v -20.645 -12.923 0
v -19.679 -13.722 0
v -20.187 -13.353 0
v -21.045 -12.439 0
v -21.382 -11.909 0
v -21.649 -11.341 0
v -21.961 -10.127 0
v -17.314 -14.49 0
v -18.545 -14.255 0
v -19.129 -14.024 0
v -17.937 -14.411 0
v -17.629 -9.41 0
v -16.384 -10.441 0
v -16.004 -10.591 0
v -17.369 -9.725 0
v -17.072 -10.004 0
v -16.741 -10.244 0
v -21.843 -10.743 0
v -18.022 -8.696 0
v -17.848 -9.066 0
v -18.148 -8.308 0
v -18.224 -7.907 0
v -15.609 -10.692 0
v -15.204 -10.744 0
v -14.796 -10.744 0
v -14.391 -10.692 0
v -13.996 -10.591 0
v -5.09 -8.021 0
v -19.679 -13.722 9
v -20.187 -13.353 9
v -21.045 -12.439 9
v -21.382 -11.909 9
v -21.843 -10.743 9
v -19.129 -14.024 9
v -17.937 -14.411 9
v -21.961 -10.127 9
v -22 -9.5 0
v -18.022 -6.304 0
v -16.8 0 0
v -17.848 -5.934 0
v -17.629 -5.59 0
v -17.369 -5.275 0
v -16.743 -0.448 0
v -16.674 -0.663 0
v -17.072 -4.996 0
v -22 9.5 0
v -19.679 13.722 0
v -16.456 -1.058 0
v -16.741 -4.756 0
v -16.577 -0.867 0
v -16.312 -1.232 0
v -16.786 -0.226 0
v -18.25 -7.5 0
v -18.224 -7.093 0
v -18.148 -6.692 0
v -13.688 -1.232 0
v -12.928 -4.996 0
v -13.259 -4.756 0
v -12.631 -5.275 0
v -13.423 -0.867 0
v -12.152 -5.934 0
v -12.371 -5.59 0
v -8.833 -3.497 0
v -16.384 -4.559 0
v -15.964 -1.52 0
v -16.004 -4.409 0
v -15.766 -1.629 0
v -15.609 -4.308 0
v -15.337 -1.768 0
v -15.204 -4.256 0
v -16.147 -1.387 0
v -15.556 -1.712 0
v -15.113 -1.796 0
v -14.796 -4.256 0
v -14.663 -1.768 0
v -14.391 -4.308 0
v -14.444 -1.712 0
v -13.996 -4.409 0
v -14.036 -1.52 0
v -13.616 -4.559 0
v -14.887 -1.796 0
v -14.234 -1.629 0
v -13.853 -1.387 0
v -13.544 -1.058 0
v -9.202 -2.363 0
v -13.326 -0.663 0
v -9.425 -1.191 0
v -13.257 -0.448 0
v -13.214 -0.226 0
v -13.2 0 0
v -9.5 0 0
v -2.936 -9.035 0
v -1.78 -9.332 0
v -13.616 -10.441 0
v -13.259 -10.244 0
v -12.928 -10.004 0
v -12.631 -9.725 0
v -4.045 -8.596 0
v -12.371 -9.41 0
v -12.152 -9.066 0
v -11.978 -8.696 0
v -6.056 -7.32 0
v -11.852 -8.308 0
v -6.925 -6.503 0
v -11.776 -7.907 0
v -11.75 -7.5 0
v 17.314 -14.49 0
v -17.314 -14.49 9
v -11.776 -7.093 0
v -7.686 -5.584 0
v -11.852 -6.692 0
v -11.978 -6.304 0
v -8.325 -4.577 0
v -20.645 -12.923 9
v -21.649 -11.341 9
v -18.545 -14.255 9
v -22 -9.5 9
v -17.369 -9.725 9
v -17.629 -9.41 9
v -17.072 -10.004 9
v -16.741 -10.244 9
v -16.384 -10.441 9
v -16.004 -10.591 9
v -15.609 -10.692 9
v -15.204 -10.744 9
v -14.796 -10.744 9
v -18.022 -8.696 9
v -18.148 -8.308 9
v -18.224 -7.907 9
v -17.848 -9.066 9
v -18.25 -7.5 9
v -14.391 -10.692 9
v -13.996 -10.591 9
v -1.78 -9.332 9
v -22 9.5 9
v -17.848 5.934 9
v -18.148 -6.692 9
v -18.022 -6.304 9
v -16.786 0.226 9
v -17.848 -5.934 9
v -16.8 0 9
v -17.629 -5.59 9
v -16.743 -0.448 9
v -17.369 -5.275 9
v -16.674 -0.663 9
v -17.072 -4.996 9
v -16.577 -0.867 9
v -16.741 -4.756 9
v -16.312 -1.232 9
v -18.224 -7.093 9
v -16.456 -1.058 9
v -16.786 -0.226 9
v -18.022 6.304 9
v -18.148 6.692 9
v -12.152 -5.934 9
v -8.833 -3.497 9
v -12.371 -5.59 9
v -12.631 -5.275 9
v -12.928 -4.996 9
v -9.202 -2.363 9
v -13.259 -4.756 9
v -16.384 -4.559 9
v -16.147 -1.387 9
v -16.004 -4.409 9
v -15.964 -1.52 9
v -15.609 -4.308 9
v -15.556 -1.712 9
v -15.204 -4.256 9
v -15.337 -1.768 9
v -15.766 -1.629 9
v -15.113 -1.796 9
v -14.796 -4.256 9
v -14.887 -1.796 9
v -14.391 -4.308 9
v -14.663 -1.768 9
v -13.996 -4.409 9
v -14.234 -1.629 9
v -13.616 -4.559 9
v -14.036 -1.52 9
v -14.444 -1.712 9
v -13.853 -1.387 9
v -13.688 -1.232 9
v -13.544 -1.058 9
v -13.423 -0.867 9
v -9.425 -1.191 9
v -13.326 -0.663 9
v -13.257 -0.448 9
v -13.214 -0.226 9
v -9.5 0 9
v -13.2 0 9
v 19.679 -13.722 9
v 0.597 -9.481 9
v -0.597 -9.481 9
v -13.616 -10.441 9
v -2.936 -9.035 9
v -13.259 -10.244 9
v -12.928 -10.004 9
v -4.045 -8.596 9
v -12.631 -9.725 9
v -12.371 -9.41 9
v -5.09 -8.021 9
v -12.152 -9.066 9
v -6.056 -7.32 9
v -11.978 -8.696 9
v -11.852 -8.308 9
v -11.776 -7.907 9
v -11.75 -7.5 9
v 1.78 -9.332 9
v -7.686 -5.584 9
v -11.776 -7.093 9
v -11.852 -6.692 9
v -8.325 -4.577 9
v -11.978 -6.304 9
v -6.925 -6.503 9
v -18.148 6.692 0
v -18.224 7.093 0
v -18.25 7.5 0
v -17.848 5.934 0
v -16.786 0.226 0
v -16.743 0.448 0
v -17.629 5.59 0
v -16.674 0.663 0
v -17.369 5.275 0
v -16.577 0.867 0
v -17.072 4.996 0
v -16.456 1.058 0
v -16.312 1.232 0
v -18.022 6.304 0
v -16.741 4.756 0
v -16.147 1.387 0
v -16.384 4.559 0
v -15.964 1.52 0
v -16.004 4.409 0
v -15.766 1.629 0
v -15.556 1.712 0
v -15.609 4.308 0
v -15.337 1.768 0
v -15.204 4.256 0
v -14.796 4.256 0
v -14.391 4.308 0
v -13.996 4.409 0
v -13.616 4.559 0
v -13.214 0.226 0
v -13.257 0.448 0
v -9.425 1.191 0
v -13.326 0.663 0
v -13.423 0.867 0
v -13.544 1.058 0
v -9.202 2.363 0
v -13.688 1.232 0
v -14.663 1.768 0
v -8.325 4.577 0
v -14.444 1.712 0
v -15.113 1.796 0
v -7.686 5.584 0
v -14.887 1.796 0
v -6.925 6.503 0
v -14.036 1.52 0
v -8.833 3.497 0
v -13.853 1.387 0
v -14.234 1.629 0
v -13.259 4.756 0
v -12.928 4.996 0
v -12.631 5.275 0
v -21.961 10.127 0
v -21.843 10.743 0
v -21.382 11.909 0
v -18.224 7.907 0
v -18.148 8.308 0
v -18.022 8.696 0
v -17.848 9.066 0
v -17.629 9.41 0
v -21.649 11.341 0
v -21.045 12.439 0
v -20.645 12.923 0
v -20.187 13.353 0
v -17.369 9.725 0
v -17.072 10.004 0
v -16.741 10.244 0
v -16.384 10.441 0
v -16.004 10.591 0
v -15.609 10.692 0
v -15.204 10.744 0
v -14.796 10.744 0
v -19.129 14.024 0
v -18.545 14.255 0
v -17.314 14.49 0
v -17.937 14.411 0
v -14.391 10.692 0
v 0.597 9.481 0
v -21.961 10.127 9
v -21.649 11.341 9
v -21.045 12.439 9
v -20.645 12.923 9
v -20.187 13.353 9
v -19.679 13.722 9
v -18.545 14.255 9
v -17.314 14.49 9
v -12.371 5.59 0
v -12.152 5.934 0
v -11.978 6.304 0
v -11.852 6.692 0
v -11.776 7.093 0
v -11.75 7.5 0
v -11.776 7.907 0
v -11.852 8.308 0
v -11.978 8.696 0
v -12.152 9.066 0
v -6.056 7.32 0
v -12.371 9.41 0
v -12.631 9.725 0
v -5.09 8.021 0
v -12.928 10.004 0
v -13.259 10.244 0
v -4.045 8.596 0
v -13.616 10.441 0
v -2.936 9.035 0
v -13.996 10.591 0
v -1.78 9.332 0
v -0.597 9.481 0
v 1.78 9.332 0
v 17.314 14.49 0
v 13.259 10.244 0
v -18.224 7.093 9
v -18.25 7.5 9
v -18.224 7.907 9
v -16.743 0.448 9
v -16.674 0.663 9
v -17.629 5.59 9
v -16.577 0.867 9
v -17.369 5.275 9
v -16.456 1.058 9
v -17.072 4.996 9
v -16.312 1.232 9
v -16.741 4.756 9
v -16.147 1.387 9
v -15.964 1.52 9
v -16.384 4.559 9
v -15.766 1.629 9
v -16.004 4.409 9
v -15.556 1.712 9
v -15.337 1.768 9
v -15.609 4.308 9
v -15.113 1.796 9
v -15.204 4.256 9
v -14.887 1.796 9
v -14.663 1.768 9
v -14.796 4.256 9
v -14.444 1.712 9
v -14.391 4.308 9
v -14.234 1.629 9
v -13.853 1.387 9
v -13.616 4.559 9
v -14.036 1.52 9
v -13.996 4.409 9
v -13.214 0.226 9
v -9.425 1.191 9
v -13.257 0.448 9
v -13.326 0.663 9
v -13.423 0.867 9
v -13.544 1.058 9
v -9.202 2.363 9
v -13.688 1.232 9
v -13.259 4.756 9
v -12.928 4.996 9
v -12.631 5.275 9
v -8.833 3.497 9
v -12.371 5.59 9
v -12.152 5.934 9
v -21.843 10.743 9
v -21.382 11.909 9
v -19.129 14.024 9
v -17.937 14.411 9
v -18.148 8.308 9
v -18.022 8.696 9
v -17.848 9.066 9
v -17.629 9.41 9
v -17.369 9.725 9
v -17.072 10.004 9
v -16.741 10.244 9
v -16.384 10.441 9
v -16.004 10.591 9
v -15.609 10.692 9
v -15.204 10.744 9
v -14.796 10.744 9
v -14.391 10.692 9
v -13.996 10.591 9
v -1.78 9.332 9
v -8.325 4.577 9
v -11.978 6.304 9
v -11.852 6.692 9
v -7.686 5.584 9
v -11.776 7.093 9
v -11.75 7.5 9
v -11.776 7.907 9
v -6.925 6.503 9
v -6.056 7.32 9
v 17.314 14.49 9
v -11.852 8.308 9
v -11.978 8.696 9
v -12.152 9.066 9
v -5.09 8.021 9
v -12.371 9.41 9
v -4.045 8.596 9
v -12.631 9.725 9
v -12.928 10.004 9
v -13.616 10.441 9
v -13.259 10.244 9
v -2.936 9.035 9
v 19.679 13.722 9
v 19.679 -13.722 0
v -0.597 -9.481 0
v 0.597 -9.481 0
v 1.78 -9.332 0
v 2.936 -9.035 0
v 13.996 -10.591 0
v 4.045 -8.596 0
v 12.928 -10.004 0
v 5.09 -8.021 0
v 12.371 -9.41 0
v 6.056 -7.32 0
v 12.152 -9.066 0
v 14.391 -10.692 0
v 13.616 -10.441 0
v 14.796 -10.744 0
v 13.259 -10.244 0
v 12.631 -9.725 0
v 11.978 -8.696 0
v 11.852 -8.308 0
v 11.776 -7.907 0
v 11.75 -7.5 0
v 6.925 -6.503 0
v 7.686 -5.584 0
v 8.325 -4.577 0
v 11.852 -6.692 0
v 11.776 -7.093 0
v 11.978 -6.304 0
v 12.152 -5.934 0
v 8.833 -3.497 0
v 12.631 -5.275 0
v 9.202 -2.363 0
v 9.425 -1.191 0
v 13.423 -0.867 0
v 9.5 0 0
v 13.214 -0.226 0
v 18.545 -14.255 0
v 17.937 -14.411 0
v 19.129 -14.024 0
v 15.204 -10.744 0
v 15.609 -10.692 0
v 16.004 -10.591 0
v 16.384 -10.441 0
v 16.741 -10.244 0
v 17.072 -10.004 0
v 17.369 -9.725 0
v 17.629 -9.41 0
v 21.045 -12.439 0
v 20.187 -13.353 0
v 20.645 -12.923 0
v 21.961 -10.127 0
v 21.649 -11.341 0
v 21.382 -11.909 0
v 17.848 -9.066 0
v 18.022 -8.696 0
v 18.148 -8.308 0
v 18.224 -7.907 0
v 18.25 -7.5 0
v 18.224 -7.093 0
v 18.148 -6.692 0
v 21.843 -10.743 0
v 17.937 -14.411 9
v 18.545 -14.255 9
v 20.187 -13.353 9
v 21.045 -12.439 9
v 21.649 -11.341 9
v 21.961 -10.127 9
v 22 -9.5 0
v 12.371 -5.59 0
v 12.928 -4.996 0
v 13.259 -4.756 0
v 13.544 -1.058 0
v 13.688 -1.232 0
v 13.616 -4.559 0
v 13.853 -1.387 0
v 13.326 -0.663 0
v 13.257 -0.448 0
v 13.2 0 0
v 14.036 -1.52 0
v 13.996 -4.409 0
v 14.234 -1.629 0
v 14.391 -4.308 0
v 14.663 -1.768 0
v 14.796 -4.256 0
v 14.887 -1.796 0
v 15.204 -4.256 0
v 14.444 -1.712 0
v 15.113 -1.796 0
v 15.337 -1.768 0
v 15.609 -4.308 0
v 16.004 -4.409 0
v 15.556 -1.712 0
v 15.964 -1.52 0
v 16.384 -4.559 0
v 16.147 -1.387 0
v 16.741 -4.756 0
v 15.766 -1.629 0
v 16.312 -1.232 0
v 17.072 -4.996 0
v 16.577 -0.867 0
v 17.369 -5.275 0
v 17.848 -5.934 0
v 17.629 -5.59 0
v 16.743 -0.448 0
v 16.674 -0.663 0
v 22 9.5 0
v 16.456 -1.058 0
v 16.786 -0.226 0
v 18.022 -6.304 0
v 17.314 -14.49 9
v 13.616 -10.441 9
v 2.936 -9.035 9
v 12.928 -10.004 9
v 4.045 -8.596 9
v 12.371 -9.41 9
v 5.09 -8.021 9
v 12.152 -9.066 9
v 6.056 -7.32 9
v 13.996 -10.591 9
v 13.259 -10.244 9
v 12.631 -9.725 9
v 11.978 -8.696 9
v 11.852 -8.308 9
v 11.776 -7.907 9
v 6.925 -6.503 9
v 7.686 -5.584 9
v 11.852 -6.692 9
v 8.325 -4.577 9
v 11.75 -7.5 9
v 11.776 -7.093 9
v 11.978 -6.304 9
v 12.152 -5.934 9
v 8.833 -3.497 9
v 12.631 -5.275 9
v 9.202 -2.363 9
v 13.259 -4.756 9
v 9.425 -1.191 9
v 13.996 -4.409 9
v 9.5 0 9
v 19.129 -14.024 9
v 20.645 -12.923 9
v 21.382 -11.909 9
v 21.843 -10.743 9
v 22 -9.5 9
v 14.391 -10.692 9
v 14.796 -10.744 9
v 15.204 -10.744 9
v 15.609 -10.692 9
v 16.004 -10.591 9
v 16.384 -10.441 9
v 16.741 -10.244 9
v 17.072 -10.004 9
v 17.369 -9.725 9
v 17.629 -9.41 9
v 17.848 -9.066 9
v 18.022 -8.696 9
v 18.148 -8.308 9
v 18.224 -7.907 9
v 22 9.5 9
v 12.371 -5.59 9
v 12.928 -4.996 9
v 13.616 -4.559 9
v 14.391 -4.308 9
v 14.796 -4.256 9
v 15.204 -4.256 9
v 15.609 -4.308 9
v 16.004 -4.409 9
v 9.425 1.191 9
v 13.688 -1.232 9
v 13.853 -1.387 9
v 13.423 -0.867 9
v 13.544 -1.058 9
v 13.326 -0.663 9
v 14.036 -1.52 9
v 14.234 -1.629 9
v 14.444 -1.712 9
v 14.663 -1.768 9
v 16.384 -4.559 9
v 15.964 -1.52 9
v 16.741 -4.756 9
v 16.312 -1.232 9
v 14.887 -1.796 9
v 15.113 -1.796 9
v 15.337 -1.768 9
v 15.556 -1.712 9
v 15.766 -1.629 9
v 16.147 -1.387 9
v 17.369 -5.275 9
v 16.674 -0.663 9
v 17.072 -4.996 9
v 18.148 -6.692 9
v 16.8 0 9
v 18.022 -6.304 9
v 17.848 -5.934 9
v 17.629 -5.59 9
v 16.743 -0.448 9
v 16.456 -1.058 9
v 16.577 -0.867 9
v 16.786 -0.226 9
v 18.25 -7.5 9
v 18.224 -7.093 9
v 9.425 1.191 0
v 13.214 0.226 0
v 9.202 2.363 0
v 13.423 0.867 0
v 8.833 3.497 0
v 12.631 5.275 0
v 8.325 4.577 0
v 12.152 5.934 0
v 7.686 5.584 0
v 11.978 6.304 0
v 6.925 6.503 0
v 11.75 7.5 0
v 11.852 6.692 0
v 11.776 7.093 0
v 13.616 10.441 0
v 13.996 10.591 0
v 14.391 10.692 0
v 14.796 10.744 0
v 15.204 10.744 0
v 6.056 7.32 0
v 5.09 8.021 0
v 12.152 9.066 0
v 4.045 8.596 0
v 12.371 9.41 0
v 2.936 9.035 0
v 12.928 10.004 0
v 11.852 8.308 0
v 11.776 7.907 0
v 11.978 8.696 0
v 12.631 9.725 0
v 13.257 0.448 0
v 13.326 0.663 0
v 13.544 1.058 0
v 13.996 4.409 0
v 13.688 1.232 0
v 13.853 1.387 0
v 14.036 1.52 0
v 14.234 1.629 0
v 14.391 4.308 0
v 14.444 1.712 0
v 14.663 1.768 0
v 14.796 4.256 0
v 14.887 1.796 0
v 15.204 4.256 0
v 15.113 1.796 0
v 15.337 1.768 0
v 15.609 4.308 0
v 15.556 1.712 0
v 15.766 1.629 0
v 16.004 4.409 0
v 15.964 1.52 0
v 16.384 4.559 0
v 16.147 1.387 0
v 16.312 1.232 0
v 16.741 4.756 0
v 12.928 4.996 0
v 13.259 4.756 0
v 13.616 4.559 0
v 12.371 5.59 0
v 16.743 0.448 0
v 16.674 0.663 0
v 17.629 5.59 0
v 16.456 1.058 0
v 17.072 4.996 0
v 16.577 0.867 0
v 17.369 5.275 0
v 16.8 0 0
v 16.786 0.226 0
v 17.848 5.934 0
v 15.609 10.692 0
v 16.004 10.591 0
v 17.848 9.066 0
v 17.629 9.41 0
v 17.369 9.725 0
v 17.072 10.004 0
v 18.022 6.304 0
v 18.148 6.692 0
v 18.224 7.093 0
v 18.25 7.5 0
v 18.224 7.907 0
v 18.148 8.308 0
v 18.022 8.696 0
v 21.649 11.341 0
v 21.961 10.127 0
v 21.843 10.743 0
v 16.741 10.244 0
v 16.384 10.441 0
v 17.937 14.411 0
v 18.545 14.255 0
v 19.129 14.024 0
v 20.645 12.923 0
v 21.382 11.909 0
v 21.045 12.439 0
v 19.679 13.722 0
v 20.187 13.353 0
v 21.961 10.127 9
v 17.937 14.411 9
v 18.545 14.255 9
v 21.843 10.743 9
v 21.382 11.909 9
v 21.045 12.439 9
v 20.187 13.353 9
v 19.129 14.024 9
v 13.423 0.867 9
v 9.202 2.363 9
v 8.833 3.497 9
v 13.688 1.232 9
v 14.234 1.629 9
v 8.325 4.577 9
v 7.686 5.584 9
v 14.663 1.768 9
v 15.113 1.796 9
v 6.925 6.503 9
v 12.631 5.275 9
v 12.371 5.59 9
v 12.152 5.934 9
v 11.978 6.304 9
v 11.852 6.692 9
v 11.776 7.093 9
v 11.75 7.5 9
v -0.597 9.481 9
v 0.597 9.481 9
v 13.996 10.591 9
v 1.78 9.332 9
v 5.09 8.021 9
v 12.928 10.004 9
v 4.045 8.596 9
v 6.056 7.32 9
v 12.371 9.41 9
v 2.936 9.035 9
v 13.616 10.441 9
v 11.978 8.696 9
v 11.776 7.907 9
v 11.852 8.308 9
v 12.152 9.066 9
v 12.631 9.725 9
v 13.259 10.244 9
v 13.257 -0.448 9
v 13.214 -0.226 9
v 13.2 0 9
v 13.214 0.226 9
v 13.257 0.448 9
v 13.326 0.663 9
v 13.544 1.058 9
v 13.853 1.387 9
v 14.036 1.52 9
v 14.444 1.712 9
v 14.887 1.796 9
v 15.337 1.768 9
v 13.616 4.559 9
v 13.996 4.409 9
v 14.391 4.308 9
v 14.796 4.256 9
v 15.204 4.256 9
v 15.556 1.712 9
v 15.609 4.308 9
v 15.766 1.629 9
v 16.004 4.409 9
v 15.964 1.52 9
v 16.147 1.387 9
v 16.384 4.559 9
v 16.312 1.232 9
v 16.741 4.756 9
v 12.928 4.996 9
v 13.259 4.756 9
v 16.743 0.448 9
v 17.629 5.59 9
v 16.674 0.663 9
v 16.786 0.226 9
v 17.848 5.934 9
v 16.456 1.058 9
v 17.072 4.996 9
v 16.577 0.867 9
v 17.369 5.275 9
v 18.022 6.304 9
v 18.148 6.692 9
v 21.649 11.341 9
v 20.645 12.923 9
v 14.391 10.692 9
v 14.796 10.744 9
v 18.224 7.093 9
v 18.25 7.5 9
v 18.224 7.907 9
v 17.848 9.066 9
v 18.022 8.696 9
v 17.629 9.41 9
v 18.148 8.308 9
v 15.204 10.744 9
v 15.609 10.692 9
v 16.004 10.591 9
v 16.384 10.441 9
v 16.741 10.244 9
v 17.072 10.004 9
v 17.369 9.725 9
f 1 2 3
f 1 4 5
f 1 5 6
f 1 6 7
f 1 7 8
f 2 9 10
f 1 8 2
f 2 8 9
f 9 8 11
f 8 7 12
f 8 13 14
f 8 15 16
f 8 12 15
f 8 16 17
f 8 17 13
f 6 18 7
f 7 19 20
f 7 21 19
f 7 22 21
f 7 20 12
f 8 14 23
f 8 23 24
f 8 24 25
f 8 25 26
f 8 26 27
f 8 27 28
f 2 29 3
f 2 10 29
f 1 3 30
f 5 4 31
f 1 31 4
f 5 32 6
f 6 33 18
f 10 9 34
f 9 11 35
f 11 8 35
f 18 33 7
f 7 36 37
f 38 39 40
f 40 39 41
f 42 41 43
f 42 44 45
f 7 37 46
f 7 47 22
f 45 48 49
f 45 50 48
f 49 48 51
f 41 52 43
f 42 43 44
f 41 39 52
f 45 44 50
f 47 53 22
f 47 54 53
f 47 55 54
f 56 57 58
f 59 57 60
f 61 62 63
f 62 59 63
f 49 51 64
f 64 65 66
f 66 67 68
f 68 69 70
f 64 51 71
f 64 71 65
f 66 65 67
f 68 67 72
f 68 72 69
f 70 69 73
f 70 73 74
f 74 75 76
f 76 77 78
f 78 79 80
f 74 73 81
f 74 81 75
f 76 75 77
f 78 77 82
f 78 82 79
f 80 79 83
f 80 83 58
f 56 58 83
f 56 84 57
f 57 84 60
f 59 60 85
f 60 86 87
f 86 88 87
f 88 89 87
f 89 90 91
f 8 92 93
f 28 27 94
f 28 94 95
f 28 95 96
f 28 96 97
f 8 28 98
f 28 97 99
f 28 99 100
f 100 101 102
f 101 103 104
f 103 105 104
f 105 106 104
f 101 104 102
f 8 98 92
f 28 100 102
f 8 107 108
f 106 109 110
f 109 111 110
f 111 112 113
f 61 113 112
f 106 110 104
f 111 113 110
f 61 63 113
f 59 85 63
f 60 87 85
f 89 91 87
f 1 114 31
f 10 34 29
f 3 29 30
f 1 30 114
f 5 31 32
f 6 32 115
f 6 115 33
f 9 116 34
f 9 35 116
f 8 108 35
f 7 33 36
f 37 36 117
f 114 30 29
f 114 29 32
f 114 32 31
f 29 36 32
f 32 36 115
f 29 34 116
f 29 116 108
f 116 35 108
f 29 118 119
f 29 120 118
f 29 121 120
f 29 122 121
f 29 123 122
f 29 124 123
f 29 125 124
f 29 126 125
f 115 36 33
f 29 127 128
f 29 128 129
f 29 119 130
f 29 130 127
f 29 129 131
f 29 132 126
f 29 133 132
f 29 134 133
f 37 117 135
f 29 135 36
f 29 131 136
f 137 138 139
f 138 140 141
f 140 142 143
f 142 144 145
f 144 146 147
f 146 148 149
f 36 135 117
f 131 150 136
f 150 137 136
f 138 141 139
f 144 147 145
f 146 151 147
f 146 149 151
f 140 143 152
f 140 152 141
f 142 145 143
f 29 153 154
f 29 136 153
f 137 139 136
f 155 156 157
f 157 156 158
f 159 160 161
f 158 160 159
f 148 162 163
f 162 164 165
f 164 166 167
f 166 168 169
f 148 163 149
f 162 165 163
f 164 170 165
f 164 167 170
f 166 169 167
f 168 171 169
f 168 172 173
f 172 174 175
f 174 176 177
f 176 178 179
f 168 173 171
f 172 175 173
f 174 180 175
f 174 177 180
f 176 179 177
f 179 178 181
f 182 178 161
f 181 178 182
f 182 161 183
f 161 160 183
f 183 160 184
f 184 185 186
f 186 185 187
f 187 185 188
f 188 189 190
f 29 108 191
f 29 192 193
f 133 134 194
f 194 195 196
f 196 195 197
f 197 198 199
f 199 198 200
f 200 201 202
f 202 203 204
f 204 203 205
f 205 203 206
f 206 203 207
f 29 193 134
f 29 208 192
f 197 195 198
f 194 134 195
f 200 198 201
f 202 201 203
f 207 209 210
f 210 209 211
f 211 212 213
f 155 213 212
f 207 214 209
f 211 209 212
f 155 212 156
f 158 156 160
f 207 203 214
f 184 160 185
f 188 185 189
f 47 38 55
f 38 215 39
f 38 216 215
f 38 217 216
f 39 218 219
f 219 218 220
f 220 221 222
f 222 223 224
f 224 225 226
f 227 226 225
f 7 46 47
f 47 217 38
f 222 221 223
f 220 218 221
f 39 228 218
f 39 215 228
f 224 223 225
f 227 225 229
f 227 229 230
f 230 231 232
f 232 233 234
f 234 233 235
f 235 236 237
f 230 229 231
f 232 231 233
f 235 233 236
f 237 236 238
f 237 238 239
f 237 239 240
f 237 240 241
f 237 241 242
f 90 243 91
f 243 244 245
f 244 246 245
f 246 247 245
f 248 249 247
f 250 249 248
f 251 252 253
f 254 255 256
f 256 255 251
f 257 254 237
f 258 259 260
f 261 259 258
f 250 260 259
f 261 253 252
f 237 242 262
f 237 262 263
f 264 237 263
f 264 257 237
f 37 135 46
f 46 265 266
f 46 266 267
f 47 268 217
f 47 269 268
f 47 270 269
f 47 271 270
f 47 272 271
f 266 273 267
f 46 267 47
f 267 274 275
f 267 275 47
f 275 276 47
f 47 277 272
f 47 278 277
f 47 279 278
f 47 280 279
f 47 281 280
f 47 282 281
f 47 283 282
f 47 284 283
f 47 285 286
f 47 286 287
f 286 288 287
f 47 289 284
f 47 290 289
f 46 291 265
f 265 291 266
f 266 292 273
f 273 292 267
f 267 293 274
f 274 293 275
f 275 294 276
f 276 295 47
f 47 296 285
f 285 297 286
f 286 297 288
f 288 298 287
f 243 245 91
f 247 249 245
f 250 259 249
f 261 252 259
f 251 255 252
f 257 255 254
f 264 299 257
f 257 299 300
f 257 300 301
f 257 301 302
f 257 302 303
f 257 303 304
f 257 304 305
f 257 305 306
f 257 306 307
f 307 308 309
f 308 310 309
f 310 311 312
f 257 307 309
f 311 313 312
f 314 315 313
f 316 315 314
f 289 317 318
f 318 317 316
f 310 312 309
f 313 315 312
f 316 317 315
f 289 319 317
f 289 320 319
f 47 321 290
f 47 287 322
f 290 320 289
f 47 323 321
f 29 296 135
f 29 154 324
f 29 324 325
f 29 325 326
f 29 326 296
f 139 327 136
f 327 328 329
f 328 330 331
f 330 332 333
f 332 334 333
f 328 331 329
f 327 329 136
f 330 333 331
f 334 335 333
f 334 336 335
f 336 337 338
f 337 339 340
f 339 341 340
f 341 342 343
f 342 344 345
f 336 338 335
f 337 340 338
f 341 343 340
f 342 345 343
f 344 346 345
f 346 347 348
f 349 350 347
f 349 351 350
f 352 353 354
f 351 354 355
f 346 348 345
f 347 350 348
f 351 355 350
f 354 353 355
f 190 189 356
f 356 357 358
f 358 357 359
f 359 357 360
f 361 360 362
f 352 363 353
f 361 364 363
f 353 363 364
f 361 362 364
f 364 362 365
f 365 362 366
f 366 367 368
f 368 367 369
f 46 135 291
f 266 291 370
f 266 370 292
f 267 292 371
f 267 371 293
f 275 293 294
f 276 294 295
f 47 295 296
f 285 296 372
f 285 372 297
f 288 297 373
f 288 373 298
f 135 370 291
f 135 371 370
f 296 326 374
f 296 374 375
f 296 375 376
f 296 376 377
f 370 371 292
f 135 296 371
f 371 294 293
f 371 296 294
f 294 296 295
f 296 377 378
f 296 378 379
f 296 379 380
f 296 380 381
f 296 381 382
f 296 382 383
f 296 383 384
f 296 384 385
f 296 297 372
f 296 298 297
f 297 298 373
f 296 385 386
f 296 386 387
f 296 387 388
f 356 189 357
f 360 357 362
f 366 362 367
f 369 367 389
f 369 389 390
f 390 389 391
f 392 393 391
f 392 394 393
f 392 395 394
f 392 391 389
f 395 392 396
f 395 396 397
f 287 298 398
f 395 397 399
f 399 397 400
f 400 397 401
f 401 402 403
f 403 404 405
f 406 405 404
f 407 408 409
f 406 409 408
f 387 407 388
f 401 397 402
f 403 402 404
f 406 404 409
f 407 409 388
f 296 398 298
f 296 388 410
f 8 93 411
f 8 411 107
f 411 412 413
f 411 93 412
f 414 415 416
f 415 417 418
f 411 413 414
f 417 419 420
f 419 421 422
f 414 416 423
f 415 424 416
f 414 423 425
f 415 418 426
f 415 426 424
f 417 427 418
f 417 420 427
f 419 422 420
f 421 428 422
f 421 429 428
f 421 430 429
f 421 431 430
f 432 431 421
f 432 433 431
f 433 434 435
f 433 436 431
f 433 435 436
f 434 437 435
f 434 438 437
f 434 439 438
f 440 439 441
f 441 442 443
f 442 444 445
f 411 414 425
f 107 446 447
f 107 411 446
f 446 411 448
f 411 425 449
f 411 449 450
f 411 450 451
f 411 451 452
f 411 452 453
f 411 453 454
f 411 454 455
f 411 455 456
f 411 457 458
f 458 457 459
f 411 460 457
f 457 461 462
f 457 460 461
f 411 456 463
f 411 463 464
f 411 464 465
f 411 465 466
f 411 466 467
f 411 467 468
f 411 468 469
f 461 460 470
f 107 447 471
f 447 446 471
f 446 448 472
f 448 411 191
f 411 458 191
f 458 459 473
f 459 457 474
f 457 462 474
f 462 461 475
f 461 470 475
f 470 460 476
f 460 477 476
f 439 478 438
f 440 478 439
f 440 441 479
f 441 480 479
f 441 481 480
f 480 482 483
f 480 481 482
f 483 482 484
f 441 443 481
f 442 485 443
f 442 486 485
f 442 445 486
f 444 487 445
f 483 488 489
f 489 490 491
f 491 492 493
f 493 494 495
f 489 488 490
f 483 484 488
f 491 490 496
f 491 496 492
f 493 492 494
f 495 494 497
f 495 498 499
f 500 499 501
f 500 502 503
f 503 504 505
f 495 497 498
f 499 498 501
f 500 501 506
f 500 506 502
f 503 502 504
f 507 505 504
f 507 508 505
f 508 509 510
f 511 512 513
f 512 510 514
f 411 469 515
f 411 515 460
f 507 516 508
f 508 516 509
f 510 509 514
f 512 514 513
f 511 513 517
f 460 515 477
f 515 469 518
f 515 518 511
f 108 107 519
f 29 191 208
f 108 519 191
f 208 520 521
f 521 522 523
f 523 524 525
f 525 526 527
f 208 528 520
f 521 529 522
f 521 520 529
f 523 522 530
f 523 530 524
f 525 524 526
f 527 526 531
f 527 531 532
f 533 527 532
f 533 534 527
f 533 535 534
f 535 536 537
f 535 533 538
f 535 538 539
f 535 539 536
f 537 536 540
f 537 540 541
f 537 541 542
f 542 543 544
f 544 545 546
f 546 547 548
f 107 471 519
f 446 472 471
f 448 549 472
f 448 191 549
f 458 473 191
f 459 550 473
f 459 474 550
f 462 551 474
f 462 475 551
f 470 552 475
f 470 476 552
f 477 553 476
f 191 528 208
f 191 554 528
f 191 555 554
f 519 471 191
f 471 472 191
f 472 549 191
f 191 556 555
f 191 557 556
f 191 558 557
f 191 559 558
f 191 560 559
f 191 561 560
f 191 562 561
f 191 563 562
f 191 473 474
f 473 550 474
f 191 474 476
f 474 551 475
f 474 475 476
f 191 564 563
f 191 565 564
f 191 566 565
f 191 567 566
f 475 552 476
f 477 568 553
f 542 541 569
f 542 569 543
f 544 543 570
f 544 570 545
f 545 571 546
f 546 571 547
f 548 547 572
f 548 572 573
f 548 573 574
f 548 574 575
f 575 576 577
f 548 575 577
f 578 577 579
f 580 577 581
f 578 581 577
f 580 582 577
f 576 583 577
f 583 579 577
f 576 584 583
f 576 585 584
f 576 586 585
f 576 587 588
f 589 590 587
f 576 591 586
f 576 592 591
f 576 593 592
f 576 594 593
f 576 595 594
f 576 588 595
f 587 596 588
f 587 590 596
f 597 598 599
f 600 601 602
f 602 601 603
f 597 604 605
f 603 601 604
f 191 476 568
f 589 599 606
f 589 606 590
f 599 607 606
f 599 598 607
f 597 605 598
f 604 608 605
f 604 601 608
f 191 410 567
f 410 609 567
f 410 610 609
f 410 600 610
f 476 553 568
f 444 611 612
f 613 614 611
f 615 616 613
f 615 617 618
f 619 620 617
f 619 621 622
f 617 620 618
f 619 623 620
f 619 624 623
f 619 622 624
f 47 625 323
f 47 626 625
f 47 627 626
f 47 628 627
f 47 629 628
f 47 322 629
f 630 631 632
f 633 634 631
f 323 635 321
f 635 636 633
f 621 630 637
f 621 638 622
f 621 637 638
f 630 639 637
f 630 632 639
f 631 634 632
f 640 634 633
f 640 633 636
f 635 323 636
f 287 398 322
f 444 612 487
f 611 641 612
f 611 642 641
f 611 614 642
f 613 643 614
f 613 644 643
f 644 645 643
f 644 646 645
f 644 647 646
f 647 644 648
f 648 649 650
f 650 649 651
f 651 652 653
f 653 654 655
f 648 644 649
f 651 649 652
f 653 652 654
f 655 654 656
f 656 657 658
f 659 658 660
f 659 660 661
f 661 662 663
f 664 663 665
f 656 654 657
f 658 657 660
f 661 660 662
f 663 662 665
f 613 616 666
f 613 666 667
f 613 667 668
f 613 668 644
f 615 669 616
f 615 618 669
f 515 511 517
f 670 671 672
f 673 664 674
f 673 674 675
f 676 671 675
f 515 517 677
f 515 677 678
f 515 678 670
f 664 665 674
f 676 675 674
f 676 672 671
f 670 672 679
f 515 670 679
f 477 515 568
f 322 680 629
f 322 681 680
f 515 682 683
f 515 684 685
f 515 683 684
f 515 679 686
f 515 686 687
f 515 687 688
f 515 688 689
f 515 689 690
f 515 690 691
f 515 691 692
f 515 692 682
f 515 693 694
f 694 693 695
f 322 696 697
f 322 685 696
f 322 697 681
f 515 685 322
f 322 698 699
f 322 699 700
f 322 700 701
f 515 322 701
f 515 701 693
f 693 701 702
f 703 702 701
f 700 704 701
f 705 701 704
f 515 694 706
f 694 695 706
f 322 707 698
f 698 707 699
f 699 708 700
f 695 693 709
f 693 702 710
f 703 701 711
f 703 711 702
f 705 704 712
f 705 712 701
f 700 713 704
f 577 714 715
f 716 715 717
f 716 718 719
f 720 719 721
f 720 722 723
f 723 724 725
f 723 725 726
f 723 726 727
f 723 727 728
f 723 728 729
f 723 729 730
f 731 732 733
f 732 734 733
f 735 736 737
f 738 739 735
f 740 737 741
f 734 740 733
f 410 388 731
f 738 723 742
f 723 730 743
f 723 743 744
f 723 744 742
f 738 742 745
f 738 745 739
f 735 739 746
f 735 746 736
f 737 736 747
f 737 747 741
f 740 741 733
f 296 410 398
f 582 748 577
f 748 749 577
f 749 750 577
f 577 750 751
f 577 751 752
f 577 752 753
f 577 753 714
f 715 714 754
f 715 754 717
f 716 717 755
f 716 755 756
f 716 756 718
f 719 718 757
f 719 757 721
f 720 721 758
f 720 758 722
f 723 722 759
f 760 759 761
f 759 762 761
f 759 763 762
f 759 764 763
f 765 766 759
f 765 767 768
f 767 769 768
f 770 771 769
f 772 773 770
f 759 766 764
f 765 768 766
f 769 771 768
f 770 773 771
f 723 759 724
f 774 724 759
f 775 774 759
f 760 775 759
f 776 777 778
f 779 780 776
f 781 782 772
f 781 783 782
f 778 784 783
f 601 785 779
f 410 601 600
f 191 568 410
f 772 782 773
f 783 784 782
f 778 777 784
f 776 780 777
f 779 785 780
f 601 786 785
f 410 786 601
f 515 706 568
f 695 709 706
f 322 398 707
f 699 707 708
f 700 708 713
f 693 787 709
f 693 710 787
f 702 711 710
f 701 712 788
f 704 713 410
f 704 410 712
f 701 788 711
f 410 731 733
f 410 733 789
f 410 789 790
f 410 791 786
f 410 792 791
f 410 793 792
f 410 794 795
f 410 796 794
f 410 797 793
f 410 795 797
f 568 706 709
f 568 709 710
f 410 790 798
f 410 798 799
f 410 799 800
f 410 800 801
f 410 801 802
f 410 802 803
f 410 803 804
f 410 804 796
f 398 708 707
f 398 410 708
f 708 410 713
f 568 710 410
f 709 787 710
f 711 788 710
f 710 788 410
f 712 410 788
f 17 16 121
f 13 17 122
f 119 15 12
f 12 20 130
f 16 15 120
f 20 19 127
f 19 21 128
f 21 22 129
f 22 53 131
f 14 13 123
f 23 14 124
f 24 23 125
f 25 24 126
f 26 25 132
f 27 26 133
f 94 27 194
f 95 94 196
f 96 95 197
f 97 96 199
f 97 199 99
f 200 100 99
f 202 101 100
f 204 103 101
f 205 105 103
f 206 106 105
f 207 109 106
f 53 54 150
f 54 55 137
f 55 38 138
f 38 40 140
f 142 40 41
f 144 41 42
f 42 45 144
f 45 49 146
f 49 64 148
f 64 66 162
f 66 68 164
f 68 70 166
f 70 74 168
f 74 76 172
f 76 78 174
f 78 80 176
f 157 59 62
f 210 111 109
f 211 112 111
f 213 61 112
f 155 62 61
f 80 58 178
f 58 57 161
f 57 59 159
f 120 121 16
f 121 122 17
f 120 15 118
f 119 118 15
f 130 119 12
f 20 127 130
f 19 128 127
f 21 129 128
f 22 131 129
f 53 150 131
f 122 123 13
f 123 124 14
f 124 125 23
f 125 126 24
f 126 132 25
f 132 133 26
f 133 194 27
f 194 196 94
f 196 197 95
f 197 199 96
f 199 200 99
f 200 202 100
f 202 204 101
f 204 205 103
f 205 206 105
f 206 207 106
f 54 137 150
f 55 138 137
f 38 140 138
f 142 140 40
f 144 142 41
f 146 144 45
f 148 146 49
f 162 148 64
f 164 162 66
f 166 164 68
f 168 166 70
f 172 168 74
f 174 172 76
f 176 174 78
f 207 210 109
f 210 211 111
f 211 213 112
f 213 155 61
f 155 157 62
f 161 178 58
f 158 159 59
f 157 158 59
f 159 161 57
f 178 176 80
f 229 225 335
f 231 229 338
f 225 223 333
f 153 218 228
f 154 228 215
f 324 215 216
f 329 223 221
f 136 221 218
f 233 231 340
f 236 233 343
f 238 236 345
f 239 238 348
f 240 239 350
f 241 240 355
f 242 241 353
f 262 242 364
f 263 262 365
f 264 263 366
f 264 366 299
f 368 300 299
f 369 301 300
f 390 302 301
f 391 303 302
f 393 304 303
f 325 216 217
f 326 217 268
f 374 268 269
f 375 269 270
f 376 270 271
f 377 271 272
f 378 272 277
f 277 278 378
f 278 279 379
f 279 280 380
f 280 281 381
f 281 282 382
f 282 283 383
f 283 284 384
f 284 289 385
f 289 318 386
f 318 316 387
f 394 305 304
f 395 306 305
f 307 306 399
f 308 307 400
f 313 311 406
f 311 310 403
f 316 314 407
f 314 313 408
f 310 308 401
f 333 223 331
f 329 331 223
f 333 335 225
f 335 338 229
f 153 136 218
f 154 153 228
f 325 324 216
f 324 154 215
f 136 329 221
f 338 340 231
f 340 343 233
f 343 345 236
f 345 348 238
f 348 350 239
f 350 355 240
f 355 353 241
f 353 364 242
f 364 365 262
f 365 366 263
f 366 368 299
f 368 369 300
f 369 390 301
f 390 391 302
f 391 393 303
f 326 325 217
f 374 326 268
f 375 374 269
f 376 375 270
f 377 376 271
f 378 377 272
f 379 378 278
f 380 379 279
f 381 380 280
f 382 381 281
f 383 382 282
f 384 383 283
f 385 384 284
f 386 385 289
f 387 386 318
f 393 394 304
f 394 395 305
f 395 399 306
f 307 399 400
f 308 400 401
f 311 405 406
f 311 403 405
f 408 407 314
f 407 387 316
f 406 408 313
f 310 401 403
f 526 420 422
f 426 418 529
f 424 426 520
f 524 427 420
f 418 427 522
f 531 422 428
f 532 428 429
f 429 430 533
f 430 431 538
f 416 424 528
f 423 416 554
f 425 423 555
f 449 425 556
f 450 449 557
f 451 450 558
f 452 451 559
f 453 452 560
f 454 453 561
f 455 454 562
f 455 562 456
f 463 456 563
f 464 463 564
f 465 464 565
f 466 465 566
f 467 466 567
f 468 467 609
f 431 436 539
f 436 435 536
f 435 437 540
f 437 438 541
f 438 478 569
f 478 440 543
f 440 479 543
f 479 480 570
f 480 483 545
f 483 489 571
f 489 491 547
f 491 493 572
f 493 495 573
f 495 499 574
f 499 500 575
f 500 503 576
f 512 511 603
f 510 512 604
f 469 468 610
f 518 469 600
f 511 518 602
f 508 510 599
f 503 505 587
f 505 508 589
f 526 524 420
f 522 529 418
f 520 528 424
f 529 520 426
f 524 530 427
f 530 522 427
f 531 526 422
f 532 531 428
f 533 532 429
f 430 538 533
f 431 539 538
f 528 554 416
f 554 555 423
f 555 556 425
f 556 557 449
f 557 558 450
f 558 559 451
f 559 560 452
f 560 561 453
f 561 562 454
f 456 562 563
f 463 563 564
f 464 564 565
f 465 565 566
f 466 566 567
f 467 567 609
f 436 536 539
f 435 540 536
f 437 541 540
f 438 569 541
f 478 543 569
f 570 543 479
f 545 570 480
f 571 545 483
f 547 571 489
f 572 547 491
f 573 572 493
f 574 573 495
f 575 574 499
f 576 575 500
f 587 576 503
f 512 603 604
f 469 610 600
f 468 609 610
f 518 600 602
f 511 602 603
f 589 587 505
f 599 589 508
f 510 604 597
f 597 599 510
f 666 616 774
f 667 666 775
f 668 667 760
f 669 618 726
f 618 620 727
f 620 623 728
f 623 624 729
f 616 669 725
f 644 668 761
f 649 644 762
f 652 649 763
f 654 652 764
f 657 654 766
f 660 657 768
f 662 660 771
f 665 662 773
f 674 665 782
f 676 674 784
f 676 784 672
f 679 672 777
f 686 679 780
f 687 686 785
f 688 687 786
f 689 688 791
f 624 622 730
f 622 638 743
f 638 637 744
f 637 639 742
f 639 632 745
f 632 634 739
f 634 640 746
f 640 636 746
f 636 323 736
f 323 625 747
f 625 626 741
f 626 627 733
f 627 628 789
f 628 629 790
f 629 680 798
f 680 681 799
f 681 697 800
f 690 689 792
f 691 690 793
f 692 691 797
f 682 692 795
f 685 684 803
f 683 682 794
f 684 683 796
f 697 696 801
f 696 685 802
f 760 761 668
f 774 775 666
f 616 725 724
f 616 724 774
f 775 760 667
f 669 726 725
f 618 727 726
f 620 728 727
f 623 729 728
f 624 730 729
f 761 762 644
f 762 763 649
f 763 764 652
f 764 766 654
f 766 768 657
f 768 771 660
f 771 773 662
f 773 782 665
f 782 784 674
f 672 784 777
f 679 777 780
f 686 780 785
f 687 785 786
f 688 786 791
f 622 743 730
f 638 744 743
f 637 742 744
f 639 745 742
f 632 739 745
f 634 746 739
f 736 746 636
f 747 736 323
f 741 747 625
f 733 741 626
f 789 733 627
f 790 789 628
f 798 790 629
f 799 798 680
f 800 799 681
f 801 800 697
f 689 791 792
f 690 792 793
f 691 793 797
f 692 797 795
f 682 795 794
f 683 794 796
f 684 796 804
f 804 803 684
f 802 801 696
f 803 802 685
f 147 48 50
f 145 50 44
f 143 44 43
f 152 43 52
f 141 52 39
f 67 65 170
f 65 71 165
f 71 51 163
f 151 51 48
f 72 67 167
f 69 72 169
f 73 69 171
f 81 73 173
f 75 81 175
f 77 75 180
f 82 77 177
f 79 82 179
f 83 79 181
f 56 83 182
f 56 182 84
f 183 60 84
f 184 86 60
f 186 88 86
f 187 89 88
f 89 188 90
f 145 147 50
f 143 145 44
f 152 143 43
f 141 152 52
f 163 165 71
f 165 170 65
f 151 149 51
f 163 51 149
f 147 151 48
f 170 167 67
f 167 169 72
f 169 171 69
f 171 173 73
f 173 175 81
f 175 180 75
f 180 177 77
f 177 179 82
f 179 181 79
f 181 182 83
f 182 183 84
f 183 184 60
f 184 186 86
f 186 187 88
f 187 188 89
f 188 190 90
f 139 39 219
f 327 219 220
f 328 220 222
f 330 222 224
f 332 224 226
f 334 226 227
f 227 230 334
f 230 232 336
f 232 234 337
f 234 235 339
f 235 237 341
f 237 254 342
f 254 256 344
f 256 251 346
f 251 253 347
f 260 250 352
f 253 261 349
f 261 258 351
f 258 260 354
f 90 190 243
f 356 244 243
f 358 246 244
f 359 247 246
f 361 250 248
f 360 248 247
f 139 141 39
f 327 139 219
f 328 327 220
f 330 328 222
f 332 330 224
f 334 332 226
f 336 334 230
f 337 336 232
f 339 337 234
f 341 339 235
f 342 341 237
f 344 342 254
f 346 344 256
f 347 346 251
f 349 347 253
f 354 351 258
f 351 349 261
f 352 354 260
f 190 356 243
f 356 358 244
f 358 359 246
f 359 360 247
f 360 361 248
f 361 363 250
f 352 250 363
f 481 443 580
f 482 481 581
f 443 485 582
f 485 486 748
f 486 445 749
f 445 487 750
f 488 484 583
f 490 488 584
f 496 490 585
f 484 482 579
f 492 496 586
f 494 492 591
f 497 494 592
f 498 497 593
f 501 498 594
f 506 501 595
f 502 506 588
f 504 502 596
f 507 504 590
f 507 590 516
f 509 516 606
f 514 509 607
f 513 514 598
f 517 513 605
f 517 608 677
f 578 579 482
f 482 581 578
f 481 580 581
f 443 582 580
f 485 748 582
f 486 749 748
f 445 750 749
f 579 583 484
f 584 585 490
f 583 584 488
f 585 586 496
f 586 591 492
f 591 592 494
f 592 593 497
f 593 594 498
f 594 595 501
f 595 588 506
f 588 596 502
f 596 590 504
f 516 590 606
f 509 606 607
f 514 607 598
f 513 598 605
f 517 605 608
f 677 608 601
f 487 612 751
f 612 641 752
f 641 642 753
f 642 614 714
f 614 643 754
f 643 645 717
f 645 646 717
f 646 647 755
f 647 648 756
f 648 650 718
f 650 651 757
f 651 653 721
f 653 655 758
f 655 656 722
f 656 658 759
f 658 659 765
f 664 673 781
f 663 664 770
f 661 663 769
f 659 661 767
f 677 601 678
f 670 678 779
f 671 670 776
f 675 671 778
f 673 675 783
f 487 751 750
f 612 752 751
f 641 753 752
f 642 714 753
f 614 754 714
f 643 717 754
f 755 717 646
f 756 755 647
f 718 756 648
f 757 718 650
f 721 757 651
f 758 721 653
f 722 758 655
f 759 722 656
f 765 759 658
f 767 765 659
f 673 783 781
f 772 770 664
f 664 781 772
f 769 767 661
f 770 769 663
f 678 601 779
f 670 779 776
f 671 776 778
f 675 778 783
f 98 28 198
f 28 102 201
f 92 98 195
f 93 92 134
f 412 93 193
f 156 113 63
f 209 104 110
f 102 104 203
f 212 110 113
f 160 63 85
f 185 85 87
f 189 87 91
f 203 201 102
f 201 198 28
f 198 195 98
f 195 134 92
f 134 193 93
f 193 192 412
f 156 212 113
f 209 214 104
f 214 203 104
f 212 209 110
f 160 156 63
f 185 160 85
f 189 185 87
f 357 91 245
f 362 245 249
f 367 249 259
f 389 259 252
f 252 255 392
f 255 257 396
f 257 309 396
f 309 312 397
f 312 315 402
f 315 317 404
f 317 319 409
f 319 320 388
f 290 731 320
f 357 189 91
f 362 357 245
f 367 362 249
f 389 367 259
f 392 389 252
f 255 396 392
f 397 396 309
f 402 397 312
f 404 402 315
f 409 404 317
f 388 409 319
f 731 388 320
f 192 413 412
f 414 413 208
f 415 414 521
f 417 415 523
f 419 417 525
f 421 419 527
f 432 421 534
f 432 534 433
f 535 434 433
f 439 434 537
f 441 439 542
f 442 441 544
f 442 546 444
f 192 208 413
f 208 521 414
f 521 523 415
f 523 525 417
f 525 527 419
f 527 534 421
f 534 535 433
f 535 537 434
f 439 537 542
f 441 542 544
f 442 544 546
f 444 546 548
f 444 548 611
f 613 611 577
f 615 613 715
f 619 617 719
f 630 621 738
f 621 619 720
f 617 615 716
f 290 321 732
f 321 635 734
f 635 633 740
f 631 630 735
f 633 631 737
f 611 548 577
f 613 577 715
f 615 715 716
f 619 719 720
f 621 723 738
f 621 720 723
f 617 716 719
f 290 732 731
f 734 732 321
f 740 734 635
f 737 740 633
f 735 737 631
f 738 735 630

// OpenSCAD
$fn = 50;

difference() {
	union() {
		hull() {
			translate(v = [-17.0, 9.5, 0]) {
				cylinder(h = 9, r = 5);
			}
			translate(v = [17.0, 9.5, 0]) {
				cylinder(h = 9, r = 5);
			}
			translate(v = [-17.0, -9.5, 0]) {
				cylinder(h = 9, r = 5);
			}
			translate(v = [17.0, -9.5, 0]) {
				cylinder(h = 9, r = 5);
			}
		}
	}
	union() {
		translate(v = [-15.0, -7.5, 0]) {
			cylinder(h = 9, r = 3.25);
		}
		translate(v = [-15.0, 7.5, 0]) {
			cylinder(h = 9, r = 3.25);
		}
		translate(v = [15.0, -7.5, 0]) {
			cylinder(h = 9, r = 3.25);
		}
		translate(v = [15.0, 7.5, 0]) {
			cylinder(h = 9, r = 3.25);
		}
		translate(v = [-15.0, 0.0, 0]) {
			cylinder(h = 9, r = 1.8);
		}
		translate(v = [15.0, 0.0, 0]) {
			cylinder(h = 9, r = 1.8);
		}
		cylinder(h = 9, r = 9.5);
	}
}
